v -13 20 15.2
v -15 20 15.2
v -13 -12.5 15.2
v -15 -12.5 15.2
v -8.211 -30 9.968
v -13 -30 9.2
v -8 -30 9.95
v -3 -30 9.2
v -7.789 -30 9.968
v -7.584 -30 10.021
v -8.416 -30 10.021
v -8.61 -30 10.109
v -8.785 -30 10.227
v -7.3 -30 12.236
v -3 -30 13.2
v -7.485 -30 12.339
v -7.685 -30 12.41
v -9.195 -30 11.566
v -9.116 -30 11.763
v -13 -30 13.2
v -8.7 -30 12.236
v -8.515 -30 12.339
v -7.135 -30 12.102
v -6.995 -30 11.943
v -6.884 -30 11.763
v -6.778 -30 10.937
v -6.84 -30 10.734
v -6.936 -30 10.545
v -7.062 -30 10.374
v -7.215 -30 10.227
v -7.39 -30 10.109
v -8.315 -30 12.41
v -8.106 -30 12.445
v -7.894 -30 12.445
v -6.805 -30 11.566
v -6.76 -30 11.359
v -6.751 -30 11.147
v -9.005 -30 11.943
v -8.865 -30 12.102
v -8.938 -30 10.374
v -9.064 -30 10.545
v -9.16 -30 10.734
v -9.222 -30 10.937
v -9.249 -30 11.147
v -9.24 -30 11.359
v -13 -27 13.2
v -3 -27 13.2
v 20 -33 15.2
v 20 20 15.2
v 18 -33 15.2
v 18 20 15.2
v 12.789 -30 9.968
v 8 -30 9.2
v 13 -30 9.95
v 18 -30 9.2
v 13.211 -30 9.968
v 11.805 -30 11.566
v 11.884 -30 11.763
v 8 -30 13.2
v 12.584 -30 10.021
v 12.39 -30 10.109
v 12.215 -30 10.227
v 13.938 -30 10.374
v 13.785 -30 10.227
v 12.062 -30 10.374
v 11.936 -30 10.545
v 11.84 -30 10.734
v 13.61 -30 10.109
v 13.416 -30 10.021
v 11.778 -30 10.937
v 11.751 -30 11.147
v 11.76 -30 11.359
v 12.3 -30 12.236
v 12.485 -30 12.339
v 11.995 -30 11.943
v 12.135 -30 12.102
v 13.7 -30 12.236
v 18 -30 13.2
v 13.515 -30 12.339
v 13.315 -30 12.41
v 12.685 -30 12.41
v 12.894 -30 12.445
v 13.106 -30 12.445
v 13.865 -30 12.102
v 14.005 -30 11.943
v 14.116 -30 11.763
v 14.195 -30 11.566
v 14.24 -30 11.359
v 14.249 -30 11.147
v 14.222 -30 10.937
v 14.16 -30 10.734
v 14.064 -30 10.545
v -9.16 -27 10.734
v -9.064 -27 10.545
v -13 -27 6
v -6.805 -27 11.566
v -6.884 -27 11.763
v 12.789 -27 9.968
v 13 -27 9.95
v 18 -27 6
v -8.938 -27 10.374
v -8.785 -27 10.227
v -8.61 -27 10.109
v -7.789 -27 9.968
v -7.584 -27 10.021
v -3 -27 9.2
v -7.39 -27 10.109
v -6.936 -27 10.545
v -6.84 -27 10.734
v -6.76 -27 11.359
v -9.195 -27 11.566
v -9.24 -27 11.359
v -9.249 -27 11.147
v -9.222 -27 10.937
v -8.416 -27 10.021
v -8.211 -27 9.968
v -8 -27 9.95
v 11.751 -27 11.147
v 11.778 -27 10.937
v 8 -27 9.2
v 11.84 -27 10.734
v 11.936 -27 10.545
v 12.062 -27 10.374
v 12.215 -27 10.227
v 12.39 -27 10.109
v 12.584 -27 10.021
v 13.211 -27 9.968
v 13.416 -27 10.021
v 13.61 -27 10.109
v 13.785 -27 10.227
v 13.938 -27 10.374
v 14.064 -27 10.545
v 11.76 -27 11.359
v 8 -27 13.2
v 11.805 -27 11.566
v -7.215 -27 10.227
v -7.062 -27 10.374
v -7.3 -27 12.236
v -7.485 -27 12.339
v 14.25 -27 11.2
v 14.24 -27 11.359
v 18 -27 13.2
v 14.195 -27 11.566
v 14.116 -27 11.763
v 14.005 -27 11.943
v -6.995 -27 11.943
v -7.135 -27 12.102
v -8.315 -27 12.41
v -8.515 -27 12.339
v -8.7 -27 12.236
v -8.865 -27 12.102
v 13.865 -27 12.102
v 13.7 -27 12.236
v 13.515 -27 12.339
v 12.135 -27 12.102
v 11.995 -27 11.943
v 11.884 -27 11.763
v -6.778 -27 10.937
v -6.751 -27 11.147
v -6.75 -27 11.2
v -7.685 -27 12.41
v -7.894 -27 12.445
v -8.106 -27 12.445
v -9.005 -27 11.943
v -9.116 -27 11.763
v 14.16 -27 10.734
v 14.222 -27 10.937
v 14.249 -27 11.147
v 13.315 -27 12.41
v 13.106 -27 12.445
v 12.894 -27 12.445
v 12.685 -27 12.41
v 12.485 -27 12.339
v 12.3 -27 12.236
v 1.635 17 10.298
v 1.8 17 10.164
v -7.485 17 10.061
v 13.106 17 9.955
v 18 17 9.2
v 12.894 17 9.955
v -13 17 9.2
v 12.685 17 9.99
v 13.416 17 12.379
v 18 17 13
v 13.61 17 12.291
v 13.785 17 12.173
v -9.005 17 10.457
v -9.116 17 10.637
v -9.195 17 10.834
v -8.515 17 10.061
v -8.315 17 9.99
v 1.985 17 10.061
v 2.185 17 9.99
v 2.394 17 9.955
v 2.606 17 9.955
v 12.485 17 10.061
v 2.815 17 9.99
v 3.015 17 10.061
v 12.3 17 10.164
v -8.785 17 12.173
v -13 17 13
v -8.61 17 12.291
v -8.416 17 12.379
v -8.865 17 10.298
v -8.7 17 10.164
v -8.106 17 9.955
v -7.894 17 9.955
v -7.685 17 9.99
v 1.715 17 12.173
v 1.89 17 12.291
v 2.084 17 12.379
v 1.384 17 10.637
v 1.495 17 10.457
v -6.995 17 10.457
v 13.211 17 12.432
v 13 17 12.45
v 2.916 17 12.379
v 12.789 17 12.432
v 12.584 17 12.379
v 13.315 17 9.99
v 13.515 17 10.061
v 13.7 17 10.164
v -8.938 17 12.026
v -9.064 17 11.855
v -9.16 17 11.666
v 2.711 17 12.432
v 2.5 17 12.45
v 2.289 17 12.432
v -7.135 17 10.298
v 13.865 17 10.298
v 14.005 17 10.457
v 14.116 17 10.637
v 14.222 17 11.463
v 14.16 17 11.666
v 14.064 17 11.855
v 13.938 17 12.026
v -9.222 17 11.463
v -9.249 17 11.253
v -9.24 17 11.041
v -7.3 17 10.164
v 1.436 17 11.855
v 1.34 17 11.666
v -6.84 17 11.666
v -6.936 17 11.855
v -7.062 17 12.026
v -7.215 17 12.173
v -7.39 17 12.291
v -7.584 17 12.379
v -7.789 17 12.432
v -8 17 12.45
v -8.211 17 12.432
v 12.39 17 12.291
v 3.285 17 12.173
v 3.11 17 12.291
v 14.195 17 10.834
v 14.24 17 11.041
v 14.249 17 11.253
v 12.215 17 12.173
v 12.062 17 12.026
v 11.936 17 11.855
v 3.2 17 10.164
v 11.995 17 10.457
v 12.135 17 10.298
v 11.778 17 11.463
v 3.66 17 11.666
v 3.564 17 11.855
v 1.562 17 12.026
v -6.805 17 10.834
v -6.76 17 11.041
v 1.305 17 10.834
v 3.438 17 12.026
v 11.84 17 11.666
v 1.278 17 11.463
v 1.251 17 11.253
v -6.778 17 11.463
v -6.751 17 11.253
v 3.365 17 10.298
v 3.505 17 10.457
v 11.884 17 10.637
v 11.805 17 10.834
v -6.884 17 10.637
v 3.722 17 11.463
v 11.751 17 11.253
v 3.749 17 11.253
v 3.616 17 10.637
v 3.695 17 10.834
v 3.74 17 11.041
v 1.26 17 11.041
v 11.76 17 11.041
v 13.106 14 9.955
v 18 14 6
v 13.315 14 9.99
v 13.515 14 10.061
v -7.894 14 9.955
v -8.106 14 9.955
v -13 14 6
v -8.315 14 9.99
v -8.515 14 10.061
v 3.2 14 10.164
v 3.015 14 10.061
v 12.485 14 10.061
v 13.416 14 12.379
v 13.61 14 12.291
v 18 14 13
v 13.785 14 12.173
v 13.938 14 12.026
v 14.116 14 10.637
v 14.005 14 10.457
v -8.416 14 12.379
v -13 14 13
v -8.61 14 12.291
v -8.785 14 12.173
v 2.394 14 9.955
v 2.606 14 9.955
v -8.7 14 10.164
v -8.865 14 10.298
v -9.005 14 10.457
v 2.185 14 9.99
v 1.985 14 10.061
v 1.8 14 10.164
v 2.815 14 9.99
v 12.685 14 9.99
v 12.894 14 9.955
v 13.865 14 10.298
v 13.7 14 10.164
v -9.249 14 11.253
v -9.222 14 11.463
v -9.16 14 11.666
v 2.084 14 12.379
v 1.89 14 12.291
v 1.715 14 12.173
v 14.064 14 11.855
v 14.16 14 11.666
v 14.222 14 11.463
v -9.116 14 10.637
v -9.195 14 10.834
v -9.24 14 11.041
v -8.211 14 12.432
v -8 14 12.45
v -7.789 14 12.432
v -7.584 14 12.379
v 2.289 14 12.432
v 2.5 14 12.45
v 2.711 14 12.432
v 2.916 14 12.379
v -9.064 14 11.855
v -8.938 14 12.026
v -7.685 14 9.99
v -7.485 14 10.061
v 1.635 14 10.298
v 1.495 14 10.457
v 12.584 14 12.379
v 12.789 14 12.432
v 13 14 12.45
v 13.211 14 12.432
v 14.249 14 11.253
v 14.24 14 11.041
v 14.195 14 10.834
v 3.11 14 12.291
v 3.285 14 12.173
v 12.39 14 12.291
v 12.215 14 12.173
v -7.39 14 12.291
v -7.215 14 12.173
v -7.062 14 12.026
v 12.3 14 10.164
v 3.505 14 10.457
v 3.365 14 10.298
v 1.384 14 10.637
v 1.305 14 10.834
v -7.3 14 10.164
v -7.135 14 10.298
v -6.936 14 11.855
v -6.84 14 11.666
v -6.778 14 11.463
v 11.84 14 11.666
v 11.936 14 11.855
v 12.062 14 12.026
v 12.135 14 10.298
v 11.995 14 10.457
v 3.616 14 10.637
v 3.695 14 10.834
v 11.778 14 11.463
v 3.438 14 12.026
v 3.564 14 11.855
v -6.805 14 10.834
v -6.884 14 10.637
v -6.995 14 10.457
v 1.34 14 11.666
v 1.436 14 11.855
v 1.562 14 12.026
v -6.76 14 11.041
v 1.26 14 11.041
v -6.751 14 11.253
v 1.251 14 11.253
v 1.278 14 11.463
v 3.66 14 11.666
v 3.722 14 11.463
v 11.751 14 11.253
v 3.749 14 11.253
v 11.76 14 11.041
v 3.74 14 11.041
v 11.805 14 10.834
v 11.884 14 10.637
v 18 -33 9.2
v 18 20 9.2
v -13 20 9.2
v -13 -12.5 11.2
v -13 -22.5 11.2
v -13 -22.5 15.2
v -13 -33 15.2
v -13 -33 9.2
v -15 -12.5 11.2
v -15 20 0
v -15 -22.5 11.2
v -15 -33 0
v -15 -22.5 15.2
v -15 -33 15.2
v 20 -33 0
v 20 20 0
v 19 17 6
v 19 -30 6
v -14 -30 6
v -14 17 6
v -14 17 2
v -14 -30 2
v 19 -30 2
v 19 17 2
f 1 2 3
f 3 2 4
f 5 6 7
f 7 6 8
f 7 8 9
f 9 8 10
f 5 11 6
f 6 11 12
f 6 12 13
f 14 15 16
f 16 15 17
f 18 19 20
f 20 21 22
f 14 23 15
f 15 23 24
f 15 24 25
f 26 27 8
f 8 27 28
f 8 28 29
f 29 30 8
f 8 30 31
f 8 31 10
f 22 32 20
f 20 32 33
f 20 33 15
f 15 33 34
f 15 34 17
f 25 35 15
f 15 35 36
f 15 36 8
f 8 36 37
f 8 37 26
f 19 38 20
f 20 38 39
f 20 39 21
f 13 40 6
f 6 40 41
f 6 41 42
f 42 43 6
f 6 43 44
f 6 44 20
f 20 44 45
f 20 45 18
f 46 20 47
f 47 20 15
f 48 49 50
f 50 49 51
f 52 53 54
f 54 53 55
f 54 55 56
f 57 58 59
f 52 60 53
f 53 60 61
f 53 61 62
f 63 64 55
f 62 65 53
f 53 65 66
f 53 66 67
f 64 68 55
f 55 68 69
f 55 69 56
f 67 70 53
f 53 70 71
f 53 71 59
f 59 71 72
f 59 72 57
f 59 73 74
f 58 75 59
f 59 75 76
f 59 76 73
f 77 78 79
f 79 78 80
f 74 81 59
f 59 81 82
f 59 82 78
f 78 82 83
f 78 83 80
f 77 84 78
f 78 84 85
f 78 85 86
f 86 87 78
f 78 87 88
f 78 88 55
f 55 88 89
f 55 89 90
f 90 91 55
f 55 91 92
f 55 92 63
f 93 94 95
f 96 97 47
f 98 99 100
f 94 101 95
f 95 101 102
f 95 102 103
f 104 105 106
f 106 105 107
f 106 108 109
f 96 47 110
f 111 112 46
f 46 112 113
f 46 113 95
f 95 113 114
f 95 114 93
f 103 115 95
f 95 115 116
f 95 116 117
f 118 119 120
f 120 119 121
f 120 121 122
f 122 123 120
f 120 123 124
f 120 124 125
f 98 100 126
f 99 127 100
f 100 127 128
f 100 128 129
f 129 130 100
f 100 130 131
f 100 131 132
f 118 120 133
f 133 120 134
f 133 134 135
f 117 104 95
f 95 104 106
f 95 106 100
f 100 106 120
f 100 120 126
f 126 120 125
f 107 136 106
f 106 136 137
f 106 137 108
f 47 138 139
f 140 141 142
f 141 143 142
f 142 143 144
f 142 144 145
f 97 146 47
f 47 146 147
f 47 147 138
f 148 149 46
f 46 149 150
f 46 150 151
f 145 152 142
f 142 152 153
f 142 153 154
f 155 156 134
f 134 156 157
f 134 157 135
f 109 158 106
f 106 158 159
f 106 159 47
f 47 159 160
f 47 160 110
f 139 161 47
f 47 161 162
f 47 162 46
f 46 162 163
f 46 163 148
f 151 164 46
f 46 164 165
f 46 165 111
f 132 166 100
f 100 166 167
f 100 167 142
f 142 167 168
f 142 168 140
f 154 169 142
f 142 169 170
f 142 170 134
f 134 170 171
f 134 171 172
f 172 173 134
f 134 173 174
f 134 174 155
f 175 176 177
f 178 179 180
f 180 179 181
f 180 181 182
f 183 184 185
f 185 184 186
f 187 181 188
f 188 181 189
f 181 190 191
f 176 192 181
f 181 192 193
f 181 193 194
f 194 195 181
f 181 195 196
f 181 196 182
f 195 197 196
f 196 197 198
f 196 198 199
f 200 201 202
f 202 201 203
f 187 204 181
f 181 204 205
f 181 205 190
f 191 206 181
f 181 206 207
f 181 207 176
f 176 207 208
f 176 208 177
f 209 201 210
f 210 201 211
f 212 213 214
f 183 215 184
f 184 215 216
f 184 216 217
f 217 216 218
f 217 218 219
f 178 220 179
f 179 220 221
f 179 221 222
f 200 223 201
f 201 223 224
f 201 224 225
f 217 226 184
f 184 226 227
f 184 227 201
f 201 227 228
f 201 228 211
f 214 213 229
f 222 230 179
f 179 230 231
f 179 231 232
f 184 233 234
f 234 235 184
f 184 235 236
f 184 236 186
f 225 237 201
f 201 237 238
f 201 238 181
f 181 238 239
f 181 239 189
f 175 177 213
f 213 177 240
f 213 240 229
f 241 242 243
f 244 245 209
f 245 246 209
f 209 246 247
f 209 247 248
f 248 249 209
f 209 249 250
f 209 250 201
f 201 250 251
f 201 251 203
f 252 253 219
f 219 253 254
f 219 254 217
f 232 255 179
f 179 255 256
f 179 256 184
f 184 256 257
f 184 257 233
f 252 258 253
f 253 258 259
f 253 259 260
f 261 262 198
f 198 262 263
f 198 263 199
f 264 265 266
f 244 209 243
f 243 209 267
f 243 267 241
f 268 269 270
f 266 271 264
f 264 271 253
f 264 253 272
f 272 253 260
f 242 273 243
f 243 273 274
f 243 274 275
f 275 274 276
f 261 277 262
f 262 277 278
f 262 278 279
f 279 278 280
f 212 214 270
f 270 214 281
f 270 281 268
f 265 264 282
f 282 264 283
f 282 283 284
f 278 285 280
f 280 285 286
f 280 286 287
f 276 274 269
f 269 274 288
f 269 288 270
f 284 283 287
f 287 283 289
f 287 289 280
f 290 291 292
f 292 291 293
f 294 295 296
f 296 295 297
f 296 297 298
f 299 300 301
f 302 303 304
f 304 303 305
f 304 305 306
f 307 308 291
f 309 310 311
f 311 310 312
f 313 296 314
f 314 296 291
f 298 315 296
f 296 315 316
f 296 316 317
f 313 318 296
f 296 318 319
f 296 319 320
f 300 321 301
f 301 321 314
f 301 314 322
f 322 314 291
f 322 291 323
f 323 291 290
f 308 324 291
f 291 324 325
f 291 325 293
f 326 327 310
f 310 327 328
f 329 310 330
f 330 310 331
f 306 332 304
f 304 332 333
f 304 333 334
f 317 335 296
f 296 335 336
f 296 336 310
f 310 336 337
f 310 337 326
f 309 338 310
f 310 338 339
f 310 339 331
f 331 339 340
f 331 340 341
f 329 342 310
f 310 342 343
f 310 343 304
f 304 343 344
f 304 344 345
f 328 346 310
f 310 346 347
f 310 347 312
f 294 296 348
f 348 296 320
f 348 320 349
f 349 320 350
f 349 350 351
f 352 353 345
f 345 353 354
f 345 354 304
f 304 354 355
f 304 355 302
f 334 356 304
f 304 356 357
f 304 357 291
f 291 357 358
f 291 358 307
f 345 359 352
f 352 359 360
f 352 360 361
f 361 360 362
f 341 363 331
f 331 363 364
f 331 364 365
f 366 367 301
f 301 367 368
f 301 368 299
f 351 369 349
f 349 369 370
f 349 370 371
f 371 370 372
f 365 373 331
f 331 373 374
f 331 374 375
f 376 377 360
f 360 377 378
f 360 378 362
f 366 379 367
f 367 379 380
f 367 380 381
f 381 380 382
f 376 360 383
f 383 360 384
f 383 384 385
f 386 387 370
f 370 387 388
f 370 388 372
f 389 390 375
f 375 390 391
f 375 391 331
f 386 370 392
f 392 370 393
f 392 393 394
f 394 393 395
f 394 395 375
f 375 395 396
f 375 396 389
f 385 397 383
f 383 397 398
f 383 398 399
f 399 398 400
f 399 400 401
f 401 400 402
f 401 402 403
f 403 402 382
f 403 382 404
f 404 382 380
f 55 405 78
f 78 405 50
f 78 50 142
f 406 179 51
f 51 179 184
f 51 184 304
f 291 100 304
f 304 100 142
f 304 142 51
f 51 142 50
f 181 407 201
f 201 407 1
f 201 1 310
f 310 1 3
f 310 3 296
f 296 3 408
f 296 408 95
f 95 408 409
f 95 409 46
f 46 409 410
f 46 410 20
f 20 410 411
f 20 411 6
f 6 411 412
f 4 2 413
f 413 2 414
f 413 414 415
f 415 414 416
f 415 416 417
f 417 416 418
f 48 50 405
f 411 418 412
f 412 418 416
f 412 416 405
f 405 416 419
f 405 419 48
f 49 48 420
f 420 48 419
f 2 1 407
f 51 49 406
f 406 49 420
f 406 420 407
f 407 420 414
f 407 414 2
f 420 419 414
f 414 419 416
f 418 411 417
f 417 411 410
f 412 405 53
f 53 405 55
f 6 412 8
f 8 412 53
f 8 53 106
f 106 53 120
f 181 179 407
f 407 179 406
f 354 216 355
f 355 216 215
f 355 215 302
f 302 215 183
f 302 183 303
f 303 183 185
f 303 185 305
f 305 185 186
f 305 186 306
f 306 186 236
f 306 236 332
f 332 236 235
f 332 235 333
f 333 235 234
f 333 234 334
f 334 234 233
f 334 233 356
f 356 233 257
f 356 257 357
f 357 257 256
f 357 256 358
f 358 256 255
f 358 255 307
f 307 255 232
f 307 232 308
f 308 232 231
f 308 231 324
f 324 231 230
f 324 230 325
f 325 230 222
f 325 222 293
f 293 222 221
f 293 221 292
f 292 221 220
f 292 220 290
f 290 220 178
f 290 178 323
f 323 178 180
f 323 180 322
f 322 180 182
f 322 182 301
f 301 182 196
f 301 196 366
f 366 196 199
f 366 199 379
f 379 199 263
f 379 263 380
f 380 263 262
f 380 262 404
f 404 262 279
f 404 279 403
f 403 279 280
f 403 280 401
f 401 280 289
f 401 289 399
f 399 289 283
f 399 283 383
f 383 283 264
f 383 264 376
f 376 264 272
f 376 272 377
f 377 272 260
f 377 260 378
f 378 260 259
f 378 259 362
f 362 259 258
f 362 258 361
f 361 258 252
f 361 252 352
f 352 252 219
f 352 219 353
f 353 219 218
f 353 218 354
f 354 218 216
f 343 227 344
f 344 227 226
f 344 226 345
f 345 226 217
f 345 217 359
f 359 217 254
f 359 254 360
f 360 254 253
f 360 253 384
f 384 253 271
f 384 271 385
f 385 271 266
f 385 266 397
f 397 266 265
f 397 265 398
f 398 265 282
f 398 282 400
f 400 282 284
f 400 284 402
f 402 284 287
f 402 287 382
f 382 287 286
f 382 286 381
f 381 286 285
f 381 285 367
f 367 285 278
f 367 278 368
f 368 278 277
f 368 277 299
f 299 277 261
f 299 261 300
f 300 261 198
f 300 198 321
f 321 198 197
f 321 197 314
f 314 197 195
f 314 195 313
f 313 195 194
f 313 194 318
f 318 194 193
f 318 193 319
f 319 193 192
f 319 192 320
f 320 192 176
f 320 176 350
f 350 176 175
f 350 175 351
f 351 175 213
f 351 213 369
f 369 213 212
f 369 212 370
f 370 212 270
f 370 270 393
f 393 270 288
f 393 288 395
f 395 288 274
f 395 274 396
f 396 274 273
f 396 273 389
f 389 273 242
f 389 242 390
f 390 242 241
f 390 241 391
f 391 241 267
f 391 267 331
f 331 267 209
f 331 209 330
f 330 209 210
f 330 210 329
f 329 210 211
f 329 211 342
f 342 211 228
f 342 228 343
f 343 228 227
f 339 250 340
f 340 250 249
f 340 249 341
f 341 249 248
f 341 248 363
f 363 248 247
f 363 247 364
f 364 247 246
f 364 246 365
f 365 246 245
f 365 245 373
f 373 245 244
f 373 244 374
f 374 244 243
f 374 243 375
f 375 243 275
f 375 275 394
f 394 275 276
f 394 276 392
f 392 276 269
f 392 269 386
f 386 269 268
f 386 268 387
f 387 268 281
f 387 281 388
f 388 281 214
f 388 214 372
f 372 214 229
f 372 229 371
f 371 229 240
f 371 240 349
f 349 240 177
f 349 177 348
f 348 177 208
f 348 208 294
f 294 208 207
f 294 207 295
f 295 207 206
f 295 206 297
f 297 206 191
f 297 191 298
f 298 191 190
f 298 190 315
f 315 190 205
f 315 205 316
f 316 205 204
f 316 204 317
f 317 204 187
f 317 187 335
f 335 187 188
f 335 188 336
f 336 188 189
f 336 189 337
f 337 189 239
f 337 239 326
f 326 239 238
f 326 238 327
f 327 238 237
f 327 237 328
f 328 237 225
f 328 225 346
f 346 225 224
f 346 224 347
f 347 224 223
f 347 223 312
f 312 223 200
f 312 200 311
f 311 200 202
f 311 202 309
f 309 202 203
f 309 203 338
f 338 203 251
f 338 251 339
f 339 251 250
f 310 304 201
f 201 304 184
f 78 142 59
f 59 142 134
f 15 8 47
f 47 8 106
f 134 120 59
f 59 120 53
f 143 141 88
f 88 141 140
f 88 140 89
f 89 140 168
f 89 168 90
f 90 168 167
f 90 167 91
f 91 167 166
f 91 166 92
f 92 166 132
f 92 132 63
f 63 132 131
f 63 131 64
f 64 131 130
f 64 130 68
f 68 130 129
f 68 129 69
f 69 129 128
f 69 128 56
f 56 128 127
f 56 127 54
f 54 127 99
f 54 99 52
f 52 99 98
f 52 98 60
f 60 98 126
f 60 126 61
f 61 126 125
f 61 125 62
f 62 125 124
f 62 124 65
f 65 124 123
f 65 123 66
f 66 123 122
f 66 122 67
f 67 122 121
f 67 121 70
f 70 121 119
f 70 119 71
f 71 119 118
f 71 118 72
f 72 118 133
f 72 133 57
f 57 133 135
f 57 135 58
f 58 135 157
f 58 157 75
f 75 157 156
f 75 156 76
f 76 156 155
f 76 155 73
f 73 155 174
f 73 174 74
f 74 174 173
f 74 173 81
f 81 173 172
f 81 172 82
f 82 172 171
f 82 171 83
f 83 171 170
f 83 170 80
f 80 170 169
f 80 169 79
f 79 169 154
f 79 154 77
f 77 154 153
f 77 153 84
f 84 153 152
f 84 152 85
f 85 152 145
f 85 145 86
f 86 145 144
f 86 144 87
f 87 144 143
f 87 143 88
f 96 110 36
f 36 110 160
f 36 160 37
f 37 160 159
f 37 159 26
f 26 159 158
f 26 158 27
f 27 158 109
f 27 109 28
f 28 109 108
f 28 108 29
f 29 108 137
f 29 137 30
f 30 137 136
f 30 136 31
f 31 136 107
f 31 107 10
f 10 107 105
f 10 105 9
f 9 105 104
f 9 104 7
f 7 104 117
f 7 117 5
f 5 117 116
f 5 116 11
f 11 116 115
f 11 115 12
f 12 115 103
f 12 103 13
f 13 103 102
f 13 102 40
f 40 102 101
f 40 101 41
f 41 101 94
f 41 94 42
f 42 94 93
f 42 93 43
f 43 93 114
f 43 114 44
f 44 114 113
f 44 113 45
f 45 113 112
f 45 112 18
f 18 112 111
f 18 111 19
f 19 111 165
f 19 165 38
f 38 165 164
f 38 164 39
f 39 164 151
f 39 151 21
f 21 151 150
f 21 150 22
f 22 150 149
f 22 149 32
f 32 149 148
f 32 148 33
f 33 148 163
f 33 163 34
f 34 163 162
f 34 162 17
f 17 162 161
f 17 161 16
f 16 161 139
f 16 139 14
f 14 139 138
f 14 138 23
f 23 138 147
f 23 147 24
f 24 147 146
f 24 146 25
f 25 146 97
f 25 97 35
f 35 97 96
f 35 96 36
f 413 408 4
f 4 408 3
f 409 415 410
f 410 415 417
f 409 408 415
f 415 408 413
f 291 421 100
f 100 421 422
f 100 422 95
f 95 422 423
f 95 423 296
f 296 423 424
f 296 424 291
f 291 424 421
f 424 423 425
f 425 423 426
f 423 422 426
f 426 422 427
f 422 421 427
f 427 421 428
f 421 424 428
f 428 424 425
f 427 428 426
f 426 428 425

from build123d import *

# Parameters (mm, degrees)
SKETCH_1_W          = 35
SKETCH_1_H          = 53
EXTRUDE_1_DEPTH     = 2
SKETCH_2_W          = 2
SKETCH_2_H          = 53
EXTRUDE_2_DEPTH     = 13.2
SKETCH_3_W          = 31
SKETCH_3_H          = 3
EXTRUDE_3_DEPTH     = 7.2
SKETCH_4_W          = 31
SKETCH_4_H          = 3
EXTRUDE_4_DEPTH     = 13.2
CUT_EXTRUDE_1_REACH = 57.956
SKETCH_5_R          = 1.25
SKETCH_7_W          = 31
SKETCH_7_H          = 3
CUT_EXTRUDE_2_DEPTH = 2.2
SKETCH_8_W          = 31
SKETCH_8_H          = 3
CUT_EXTRUDE_3_DEPTH = 2
SKETCH_10_W         = 11
SKETCH_10_H         = 3
CUT_EXTRUDE_4_DEPTH = 4
CUT_EXTRUDE_START   = -3
SKETCH_9_R          = 1.25
CUT_EXTRUDE_5_DEPTH = 3
SKETCH_12_W         = 2
SKETCH_12_H         = 10
CUT_EXTRUDE_6_DEPTH = 4
SKETCH_13_W         = 33
SKETCH_13_H         = 47
CUT_EXTRUDE_7_DEPTH = 4


with BuildPart() as part:
    # 草图1 → 凸台-拉伸1 (new body)
    with BuildSketch(Plane.XY):
        with Locations((2.5, -6.5)):
            Rectangle(SKETCH_1_W, SKETCH_1_H)
    extrude(amount=EXTRUDE_1_DEPTH)

    # 草图2 → 凸台-拉伸2 (add)
    with BuildSketch(Plane.XY.offset(2)):
        with Locations((-14, -6.5)):
            Rectangle(SKETCH_2_W, SKETCH_2_H)
        with Locations((19, -6.5)):
            Rectangle(SKETCH_2_W, SKETCH_2_H)
    extrude(amount=EXTRUDE_2_DEPTH)

    # 草图3 → 凸台-拉伸3 (add)
    with BuildSketch(Plane.XY.offset(2)):
        with Locations((2.5, 18.5)):
            Rectangle(SKETCH_3_W, SKETCH_3_H)
        with Locations((2.5, -31.5)):
            Rectangle(SKETCH_3_W, SKETCH_3_H)
    extrude(amount=EXTRUDE_3_DEPTH)

    # 草图4 → 凸台-拉伸4 (add)
    with BuildSketch(Plane.XY.offset(2)):
        with Locations((2.5, 15.5)):
            Rectangle(SKETCH_4_W, SKETCH_4_H)
        with Locations((2.5, -28.5)):
            Rectangle(SKETCH_4_W, SKETCH_4_H)
    extrude(amount=EXTRUDE_4_DEPTH)

    # 草图5 → 切除-拉伸1 (cut, up to next)
    with BuildSketch(Plane(origin=(0, 17, 0), x_dir=(1, 0, 0), z_dir=(0, 1, 0)), mode=Mode.PRIVATE) as cut_extrude_1_sk1:
        with Locations(Location((-8, -11.2, 0), (0, 0, 270))):
            Circle(SKETCH_5_R)
    cut_extrude_1_tool1 = extrude(cut_extrude_1_sk1.sketch, amount=-CUT_EXTRUDE_1_REACH, mode=Mode.PRIVATE) & part.part
    # 草图5 → 切除-拉伸1 (cut, up to next)
    with BuildSketch(Plane(origin=(0, 17, 0), x_dir=(1, 0, 0), z_dir=(0, 1, 0)), mode=Mode.PRIVATE) as cut_extrude_1_sk2:
        with Locations(Location((2.5, -11.2, 0), (0, 0, 270))):
            Circle(SKETCH_5_R)
    cut_extrude_1_tool2 = extrude(cut_extrude_1_sk2.sketch, amount=-CUT_EXTRUDE_1_REACH, mode=Mode.PRIVATE) & part.part
    # 草图5 → 切除-拉伸1 (cut, up to next)
    with BuildSketch(Plane(origin=(0, 17, 0), x_dir=(1, 0, 0), z_dir=(0, 1, 0)), mode=Mode.PRIVATE) as cut_extrude_1_sk3:
        with Locations(Location((13, -11.2, 0), (0, 0, 270))):
            Circle(SKETCH_5_R)
    cut_extrude_1_tool3 = extrude(cut_extrude_1_sk3.sketch, amount=-CUT_EXTRUDE_1_REACH, mode=Mode.PRIVATE) & part.part
    add(cut_extrude_1_tool1.solids().sort_by_distance((-8, 17, 11.2))[0], mode=Mode.SUBTRACT)
    add(cut_extrude_1_tool2.solids().sort_by_distance((2.5, 17, 11.2))[0], mode=Mode.SUBTRACT)
    add(cut_extrude_1_tool3.solids().sort_by_distance((13, 17, 11.2))[0], mode=Mode.SUBTRACT)

    # 草图7 → 切除-拉伸2 (cut)
    with BuildSketch(Plane.XY.offset(15.2)):
        with Locations((2.5, 15.5)):
            Rectangle(SKETCH_7_W, SKETCH_7_H)
    extrude(amount=-CUT_EXTRUDE_2_DEPTH, mode=Mode.SUBTRACT)

    # 草图8 → 切除-拉伸3 (cut)
    with BuildSketch(Plane.XY.offset(15.2)):
        with Locations((2.5, -28.5)):
            Rectangle(SKETCH_8_W, SKETCH_8_H)
    extrude(amount=-CUT_EXTRUDE_3_DEPTH, mode=Mode.SUBTRACT)

    # 草图10 → 切除-拉伸4 (cut)
    with BuildSketch(Plane.XY.offset(13.2)):
        with Locations((2.5, -28.5)):
            Rectangle(SKETCH_10_W, SKETCH_10_H)
    extrude(amount=-CUT_EXTRUDE_4_DEPTH, mode=Mode.SUBTRACT)

    # 草图9 → 切除-拉伸5 (cut)
    with BuildSketch(Plane.XZ.offset(30).offset(CUT_EXTRUDE_START)):
        with Locations(Location((-8, 11.2, 0), (0, 0, 90))):
            Circle(SKETCH_9_R)
        with Locations(Location((13, 11.2, 0), (0, 0, 90))):
            Circle(SKETCH_9_R)
    extrude(amount=CUT_EXTRUDE_5_DEPTH, mode=Mode.SUBTRACT)

    # 草图12 → 切除-拉伸6 (cut)
    with BuildSketch(Plane.XY.offset(15.2)):
        with Locations((-14, -17.5)):
            Rectangle(SKETCH_12_W, SKETCH_12_H)
    extrude(amount=-CUT_EXTRUDE_6_DEPTH, mode=Mode.SUBTRACT)

    # 草图13 → 切除-拉伸7 (cut)
    with BuildSketch(Plane.XY.offset(2)):
        with Locations((2.5, -6.5)):
            Rectangle(SKETCH_13_W, SKETCH_13_H)
    extrude(amount=CUT_EXTRUDE_7_DEPTH, mode=Mode.SUBTRACT)


solid = part.part
